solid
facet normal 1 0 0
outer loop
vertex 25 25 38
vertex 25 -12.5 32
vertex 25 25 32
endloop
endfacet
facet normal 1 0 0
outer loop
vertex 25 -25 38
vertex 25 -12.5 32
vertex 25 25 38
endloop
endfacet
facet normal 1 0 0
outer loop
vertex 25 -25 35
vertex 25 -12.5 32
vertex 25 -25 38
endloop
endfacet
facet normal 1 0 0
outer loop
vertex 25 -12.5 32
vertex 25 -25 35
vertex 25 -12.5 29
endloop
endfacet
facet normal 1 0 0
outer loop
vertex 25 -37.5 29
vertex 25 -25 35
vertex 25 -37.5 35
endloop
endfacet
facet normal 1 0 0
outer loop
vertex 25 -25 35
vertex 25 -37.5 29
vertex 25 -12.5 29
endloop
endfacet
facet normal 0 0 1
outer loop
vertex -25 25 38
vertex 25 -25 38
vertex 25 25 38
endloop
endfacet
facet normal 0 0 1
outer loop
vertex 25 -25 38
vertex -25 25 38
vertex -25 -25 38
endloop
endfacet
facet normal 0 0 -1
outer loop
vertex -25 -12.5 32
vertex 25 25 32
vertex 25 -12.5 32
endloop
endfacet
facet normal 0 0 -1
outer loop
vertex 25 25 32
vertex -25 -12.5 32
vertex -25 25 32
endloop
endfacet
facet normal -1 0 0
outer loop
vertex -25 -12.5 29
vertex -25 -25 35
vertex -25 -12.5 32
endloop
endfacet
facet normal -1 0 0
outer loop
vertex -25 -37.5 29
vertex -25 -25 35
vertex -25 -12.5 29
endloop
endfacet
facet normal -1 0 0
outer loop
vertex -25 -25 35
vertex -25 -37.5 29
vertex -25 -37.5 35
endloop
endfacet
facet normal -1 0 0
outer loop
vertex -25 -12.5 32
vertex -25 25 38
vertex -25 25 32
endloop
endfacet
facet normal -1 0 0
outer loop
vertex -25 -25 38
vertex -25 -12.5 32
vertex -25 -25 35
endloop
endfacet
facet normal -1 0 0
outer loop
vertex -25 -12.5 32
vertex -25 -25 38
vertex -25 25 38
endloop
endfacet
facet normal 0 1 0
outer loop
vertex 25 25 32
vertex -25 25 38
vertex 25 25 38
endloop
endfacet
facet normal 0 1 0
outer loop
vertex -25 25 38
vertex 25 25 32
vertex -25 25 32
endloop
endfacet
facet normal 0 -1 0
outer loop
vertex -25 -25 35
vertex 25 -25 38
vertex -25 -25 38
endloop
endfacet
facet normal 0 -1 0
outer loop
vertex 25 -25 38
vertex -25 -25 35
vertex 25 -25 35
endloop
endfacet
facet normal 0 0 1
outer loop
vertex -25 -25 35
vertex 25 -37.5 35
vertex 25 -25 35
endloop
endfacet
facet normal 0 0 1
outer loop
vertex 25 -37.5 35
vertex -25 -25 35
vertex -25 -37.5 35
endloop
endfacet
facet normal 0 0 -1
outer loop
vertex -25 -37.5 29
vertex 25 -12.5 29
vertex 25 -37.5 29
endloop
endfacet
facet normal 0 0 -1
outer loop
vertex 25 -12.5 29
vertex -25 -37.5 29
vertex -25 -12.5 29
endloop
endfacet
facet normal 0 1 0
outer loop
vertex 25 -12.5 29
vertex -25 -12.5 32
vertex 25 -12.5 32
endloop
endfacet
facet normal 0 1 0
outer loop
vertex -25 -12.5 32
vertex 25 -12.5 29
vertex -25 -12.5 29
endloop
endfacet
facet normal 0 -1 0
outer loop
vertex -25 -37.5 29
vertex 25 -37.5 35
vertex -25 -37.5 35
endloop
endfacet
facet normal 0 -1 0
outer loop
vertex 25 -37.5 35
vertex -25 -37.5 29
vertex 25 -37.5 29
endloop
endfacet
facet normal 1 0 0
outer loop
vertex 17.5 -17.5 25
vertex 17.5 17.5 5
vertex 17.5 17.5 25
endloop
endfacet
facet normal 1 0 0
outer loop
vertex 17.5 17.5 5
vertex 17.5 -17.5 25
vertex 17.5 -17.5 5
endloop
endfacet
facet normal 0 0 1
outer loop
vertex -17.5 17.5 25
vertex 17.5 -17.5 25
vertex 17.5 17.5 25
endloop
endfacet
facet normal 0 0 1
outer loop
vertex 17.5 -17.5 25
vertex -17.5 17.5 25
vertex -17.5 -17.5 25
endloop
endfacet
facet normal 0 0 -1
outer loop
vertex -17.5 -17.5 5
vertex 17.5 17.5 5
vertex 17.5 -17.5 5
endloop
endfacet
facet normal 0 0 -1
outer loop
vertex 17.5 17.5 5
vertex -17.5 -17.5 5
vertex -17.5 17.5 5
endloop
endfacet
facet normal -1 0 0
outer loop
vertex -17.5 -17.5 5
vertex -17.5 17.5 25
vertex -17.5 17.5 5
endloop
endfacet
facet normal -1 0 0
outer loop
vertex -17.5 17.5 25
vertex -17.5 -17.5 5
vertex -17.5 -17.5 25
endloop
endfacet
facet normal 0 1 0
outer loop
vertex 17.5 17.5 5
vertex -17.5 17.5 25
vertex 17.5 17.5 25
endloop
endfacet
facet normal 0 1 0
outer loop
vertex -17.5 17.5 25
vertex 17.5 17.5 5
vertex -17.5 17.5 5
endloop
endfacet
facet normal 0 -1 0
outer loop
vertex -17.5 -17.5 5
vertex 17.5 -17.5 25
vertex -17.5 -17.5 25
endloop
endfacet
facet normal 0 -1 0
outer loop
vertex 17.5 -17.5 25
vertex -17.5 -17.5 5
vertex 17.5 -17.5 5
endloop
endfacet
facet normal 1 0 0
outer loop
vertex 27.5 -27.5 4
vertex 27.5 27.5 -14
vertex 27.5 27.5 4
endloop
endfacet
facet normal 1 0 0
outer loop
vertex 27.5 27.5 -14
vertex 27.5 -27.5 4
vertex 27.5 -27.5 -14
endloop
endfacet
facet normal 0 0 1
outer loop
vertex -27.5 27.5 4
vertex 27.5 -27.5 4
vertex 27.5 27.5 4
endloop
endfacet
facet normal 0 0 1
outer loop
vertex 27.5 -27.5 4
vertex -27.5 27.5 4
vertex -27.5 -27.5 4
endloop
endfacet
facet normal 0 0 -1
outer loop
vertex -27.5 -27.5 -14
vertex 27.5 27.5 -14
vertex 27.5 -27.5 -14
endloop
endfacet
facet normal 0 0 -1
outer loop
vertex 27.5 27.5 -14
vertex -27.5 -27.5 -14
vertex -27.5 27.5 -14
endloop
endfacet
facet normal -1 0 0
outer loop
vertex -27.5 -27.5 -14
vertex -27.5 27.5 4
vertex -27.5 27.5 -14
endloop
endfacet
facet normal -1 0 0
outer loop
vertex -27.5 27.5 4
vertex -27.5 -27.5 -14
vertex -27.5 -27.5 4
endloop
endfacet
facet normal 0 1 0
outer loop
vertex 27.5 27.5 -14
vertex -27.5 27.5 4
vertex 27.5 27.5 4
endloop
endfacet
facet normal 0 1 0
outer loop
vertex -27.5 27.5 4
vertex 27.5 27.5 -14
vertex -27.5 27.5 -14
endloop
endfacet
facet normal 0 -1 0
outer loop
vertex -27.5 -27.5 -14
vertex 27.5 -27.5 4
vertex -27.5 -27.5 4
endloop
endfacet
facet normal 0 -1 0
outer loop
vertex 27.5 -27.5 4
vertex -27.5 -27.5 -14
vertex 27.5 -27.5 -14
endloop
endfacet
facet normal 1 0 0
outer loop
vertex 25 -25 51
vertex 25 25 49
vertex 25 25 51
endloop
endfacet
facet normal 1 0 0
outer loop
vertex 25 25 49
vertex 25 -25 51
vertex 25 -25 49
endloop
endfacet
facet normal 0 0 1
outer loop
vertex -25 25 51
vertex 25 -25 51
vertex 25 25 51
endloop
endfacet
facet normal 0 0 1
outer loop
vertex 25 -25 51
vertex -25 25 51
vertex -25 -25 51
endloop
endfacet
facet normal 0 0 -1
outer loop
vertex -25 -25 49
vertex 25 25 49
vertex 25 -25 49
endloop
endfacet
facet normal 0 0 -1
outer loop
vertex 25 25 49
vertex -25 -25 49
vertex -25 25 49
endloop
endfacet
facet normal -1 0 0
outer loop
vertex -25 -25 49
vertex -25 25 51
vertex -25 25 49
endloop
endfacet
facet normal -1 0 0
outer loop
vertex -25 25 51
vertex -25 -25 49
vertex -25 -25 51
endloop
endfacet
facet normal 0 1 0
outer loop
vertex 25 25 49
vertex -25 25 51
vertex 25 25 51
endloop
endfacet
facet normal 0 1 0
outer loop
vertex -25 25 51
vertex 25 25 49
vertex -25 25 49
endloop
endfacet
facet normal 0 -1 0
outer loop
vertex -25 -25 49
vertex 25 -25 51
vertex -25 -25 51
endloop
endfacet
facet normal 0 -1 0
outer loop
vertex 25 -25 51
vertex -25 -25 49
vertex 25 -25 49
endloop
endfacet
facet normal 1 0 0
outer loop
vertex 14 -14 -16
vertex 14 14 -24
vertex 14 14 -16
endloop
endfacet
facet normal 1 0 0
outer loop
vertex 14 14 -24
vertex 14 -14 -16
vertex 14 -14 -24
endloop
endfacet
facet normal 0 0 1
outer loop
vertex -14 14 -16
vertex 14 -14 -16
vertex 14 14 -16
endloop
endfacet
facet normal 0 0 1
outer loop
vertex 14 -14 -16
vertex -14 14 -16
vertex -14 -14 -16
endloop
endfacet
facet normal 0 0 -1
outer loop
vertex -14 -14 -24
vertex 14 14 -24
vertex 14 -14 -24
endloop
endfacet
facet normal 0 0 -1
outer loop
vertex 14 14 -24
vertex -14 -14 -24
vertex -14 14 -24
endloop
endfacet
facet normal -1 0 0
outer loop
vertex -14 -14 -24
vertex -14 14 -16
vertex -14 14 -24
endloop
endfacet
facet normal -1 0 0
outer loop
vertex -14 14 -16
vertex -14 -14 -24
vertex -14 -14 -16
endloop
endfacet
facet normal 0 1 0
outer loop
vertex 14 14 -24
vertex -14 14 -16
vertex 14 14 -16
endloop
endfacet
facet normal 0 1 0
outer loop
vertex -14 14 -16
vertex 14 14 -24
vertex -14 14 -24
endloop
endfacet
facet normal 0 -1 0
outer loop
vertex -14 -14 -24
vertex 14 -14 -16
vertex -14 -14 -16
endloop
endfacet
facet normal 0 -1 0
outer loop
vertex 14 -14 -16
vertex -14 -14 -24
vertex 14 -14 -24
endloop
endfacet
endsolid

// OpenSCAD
// Define the dimensions for each component
module flat_plate() {
    cube([50, 50, 2], center = true); // Reduced thickness to match the original model
}

module l_shaped_connector() {
    difference() {
        union() {
            cube([50, 50, 6], center = true); // Reduced thickness of the vertical section
            translate([0, -25, -3]) cube([50, 25, 6], center = true); // Adjusted thickness
        }
        translate([-25, -25, -3]) polyhedron(
            points = [[0, 0, 0], [25, 0, 0], [0, 25, 0], [0, 0, 6], [25, 0, 6], [0, 25, 6]],
            faces = [[0, 1, 2], [3, 4, 5], [0, 1, 4, 3], [1, 2, 5, 4], [2, 0, 3, 5]]
        ); // Deepened and sharpened the triangular cutout
    }
}

module inner_support() {
    difference() {
        cube([35, 35, 20], center = true); // Base width remains the same
        translate([-17.5, -17.5, -10]) polyhedron(
            points = [[0, 0, 0], [17.5, 0, 0], [0, 17.5, 0], [0, 0, 20], [17.5, 0, 20], [0, 17.5, 20]],
            faces = [[0, 1, 2], [3, 4, 5], [0, 1, 4, 3], [1, 2, 5, 4], [2, 0, 3, 5]]
        ); // Enlarged and sharpened the triangular cutout
    }
}

module outer_support() {
    difference() {
        cube([55, 55, 18], center = true); // Base dimensions remain the same
        translate([-27.5, -27.5, -9]) polyhedron(
            points = [[0, 0, 0], [27.5, 0, 0], [0, 27.5, 0], [0, 0, 18], [27.5, 0, 18], [0, 27.5, 18]],
            faces = [[0, 1, 2], [3, 4, 5], [0, 1, 4, 3], [1, 2, 5, 4], [2, 0, 3, 5]]
        ); // Deepened and sharpened the triangular cutout
    }
}

module reinforcement_block() {
    cube([28, 28, 8], center = true); // Flattened the top surface to remove stepped design
}

// Assemble the components based on the positional relationship
module assembly() {
    translate([0, 0, 50]) flat_plate();
    translate([0, 0, 35]) l_shaped_connector();
    translate([0, 0, 15]) inner_support();
    translate([0, 0, -5]) outer_support();
    translate([0, 0, -20]) reinforcement_block();
}

// Render the final assembly
assembly();
